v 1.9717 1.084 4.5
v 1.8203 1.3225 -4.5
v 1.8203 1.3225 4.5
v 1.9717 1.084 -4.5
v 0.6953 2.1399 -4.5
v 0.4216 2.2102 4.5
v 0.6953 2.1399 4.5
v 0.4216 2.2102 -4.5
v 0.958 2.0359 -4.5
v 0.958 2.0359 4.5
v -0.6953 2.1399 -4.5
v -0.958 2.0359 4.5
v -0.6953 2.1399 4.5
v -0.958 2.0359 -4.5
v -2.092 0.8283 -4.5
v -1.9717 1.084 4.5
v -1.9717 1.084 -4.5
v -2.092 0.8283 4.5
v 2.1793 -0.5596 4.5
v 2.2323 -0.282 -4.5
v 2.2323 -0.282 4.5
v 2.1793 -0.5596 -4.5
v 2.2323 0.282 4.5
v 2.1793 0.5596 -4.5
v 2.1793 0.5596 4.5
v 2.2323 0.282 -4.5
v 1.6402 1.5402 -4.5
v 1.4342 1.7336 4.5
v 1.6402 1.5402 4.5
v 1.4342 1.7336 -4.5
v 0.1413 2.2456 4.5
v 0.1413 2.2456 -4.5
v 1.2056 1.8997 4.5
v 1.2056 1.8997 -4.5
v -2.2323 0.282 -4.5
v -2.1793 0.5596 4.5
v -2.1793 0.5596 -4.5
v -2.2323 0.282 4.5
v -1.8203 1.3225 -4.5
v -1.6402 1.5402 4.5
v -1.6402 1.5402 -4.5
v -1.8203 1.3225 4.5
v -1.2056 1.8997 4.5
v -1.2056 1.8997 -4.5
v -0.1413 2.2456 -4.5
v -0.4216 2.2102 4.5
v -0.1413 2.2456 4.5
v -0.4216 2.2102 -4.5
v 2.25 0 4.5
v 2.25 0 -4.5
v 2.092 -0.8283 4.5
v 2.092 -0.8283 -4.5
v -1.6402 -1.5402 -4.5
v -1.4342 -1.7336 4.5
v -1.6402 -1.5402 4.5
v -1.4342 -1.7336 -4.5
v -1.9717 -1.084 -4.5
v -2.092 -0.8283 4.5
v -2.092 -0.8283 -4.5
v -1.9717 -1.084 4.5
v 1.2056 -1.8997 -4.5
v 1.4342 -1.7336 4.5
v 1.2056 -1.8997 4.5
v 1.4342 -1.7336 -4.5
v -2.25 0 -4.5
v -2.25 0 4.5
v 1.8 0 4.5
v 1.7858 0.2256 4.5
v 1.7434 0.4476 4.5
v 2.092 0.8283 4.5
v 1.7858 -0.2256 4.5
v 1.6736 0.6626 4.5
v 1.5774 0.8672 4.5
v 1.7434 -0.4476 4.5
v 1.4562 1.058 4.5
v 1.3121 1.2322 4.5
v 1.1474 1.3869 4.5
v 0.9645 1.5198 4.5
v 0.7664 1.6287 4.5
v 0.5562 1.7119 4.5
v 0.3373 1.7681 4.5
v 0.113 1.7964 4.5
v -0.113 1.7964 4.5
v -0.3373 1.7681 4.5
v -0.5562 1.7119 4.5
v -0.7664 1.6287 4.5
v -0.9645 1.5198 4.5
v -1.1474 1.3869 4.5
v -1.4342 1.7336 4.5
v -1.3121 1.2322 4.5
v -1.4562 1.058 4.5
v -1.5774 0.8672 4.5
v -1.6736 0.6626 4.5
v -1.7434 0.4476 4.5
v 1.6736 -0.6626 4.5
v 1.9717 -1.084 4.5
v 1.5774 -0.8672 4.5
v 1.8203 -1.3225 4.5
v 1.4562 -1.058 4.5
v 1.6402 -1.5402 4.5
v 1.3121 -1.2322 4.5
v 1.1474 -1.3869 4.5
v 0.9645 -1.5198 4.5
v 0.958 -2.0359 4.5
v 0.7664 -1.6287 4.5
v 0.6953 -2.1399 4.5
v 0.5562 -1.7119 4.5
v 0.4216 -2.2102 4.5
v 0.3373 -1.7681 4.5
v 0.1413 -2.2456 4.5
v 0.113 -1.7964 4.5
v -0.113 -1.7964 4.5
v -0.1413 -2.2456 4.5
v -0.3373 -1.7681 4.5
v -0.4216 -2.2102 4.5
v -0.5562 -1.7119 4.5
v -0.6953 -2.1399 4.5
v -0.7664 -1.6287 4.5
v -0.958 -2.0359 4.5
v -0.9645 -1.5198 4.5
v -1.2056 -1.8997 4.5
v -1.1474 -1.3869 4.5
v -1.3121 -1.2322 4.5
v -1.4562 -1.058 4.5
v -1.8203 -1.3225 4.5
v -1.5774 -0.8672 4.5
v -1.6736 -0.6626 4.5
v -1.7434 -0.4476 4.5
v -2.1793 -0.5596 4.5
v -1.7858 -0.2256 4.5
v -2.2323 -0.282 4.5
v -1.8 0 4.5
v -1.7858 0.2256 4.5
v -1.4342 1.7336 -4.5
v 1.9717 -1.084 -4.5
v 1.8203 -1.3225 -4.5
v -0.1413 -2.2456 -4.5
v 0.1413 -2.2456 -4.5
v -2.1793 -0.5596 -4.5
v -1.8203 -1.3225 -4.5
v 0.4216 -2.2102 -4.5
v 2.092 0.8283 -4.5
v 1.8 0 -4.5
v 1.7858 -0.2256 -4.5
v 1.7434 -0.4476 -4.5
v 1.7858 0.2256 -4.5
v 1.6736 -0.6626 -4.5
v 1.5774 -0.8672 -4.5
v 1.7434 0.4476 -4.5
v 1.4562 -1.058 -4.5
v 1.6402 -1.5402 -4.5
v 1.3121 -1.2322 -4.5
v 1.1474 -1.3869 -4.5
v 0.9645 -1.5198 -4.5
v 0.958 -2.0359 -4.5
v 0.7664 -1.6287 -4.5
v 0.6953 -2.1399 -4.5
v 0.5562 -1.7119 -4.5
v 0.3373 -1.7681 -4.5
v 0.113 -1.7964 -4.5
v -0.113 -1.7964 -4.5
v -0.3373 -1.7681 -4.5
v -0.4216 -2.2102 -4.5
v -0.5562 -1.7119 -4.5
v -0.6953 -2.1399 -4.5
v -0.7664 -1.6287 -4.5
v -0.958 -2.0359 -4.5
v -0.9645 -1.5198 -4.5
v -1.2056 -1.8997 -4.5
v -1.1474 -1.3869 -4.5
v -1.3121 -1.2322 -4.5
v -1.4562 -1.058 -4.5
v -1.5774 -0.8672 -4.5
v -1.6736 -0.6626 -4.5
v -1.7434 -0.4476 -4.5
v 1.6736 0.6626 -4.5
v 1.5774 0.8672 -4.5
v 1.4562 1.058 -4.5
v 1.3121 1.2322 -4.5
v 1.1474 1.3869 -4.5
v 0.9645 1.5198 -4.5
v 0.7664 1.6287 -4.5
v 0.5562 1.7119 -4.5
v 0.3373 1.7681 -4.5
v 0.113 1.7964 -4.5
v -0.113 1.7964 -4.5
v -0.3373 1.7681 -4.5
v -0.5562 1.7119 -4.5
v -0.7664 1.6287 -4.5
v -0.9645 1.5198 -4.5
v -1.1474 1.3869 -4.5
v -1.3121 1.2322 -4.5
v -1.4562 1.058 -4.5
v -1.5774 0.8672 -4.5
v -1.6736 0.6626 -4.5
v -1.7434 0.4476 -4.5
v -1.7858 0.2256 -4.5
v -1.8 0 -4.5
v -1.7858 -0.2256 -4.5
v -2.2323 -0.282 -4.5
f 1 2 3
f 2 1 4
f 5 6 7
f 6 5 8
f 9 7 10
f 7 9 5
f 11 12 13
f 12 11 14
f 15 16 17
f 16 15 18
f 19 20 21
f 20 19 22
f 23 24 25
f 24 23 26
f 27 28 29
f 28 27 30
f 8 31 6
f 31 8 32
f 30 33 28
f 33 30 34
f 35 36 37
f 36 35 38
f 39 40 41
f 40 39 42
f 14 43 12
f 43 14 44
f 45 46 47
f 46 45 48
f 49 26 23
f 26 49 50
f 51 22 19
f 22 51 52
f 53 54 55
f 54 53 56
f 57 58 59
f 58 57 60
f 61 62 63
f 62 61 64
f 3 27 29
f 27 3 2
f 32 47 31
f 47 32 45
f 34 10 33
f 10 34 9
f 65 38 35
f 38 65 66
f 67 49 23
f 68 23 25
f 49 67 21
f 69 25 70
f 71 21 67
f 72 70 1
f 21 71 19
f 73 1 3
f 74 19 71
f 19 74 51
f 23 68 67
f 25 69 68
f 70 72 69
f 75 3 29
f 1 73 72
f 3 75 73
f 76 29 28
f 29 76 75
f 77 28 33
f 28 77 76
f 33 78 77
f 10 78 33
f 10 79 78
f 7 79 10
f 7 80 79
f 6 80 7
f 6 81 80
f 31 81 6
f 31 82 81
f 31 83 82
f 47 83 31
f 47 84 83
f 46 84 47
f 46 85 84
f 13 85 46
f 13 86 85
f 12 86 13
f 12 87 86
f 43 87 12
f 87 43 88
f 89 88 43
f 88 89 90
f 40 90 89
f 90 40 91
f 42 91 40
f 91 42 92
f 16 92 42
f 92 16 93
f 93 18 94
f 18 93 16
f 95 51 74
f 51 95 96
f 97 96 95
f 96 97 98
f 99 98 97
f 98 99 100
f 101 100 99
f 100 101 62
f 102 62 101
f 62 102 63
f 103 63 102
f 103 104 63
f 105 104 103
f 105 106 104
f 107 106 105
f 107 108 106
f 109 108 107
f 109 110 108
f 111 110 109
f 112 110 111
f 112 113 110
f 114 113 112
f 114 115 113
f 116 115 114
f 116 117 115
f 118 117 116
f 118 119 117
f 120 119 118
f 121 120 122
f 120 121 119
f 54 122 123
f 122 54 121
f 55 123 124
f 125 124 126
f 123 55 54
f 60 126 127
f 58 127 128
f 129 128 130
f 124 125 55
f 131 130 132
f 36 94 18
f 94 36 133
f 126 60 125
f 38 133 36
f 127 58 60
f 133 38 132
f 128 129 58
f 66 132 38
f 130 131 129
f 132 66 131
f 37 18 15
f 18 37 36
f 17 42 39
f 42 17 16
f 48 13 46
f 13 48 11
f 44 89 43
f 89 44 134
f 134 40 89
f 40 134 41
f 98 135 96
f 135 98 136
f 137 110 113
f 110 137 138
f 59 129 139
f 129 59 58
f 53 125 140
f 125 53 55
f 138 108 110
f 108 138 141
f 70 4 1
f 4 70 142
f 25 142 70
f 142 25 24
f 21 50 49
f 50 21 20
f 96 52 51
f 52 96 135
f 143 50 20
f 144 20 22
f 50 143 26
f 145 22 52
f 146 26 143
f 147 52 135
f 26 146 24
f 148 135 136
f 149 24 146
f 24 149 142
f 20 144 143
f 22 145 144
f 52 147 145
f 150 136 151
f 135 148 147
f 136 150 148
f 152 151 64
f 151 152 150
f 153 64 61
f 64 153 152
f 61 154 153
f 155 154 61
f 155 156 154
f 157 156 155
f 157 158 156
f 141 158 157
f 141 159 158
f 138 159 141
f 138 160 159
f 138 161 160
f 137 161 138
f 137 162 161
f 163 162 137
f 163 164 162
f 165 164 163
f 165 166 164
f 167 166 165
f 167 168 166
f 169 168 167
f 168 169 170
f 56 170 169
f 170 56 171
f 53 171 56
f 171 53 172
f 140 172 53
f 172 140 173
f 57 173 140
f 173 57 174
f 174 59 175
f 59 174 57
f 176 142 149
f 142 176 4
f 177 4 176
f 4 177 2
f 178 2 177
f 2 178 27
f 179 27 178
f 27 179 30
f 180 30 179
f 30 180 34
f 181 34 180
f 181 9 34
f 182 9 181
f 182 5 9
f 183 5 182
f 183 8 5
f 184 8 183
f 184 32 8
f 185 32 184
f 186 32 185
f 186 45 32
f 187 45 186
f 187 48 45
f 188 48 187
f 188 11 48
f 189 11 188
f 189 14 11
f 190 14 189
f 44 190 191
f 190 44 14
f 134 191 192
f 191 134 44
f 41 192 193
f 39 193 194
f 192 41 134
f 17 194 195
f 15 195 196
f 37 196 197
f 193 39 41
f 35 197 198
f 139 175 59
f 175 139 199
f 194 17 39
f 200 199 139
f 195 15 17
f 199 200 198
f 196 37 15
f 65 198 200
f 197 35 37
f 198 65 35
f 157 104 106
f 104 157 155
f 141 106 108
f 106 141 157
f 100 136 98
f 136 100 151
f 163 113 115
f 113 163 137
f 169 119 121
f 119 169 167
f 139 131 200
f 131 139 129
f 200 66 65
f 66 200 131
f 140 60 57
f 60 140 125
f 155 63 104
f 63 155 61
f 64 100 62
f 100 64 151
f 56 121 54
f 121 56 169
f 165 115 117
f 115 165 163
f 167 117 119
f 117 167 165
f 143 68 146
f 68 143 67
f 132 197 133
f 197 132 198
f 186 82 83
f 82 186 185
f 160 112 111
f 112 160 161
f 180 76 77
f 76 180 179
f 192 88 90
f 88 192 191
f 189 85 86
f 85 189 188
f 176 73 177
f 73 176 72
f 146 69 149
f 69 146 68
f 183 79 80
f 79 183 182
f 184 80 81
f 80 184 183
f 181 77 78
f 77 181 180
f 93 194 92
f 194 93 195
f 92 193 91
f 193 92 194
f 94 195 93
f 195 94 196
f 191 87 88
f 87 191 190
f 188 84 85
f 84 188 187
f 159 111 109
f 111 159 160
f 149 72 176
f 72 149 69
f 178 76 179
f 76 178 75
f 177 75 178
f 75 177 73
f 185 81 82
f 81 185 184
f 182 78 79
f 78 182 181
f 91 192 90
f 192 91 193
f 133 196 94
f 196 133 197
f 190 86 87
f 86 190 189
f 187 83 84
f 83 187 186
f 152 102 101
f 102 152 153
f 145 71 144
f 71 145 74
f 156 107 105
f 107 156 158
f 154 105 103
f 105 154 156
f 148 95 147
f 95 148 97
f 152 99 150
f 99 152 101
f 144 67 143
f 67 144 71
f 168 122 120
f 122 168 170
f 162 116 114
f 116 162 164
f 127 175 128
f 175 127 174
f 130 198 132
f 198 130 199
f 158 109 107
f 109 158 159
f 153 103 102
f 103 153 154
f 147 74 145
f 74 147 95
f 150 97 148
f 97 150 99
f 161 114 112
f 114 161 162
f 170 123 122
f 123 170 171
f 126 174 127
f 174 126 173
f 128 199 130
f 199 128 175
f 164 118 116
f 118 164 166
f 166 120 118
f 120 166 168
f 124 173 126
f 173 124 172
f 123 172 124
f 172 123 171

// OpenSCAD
$fn = 50;


difference() {
	union() {
		translate(v = [0, 0, -4.5000000000]) {
			cylinder(h = 9, r = 2.2500000000);
		}
	}
	union() {
		translate(v = [0, 0, -100.0000000000]) {
			cylinder(h = 200, r = 1.8000000000);
		}
	}
}
